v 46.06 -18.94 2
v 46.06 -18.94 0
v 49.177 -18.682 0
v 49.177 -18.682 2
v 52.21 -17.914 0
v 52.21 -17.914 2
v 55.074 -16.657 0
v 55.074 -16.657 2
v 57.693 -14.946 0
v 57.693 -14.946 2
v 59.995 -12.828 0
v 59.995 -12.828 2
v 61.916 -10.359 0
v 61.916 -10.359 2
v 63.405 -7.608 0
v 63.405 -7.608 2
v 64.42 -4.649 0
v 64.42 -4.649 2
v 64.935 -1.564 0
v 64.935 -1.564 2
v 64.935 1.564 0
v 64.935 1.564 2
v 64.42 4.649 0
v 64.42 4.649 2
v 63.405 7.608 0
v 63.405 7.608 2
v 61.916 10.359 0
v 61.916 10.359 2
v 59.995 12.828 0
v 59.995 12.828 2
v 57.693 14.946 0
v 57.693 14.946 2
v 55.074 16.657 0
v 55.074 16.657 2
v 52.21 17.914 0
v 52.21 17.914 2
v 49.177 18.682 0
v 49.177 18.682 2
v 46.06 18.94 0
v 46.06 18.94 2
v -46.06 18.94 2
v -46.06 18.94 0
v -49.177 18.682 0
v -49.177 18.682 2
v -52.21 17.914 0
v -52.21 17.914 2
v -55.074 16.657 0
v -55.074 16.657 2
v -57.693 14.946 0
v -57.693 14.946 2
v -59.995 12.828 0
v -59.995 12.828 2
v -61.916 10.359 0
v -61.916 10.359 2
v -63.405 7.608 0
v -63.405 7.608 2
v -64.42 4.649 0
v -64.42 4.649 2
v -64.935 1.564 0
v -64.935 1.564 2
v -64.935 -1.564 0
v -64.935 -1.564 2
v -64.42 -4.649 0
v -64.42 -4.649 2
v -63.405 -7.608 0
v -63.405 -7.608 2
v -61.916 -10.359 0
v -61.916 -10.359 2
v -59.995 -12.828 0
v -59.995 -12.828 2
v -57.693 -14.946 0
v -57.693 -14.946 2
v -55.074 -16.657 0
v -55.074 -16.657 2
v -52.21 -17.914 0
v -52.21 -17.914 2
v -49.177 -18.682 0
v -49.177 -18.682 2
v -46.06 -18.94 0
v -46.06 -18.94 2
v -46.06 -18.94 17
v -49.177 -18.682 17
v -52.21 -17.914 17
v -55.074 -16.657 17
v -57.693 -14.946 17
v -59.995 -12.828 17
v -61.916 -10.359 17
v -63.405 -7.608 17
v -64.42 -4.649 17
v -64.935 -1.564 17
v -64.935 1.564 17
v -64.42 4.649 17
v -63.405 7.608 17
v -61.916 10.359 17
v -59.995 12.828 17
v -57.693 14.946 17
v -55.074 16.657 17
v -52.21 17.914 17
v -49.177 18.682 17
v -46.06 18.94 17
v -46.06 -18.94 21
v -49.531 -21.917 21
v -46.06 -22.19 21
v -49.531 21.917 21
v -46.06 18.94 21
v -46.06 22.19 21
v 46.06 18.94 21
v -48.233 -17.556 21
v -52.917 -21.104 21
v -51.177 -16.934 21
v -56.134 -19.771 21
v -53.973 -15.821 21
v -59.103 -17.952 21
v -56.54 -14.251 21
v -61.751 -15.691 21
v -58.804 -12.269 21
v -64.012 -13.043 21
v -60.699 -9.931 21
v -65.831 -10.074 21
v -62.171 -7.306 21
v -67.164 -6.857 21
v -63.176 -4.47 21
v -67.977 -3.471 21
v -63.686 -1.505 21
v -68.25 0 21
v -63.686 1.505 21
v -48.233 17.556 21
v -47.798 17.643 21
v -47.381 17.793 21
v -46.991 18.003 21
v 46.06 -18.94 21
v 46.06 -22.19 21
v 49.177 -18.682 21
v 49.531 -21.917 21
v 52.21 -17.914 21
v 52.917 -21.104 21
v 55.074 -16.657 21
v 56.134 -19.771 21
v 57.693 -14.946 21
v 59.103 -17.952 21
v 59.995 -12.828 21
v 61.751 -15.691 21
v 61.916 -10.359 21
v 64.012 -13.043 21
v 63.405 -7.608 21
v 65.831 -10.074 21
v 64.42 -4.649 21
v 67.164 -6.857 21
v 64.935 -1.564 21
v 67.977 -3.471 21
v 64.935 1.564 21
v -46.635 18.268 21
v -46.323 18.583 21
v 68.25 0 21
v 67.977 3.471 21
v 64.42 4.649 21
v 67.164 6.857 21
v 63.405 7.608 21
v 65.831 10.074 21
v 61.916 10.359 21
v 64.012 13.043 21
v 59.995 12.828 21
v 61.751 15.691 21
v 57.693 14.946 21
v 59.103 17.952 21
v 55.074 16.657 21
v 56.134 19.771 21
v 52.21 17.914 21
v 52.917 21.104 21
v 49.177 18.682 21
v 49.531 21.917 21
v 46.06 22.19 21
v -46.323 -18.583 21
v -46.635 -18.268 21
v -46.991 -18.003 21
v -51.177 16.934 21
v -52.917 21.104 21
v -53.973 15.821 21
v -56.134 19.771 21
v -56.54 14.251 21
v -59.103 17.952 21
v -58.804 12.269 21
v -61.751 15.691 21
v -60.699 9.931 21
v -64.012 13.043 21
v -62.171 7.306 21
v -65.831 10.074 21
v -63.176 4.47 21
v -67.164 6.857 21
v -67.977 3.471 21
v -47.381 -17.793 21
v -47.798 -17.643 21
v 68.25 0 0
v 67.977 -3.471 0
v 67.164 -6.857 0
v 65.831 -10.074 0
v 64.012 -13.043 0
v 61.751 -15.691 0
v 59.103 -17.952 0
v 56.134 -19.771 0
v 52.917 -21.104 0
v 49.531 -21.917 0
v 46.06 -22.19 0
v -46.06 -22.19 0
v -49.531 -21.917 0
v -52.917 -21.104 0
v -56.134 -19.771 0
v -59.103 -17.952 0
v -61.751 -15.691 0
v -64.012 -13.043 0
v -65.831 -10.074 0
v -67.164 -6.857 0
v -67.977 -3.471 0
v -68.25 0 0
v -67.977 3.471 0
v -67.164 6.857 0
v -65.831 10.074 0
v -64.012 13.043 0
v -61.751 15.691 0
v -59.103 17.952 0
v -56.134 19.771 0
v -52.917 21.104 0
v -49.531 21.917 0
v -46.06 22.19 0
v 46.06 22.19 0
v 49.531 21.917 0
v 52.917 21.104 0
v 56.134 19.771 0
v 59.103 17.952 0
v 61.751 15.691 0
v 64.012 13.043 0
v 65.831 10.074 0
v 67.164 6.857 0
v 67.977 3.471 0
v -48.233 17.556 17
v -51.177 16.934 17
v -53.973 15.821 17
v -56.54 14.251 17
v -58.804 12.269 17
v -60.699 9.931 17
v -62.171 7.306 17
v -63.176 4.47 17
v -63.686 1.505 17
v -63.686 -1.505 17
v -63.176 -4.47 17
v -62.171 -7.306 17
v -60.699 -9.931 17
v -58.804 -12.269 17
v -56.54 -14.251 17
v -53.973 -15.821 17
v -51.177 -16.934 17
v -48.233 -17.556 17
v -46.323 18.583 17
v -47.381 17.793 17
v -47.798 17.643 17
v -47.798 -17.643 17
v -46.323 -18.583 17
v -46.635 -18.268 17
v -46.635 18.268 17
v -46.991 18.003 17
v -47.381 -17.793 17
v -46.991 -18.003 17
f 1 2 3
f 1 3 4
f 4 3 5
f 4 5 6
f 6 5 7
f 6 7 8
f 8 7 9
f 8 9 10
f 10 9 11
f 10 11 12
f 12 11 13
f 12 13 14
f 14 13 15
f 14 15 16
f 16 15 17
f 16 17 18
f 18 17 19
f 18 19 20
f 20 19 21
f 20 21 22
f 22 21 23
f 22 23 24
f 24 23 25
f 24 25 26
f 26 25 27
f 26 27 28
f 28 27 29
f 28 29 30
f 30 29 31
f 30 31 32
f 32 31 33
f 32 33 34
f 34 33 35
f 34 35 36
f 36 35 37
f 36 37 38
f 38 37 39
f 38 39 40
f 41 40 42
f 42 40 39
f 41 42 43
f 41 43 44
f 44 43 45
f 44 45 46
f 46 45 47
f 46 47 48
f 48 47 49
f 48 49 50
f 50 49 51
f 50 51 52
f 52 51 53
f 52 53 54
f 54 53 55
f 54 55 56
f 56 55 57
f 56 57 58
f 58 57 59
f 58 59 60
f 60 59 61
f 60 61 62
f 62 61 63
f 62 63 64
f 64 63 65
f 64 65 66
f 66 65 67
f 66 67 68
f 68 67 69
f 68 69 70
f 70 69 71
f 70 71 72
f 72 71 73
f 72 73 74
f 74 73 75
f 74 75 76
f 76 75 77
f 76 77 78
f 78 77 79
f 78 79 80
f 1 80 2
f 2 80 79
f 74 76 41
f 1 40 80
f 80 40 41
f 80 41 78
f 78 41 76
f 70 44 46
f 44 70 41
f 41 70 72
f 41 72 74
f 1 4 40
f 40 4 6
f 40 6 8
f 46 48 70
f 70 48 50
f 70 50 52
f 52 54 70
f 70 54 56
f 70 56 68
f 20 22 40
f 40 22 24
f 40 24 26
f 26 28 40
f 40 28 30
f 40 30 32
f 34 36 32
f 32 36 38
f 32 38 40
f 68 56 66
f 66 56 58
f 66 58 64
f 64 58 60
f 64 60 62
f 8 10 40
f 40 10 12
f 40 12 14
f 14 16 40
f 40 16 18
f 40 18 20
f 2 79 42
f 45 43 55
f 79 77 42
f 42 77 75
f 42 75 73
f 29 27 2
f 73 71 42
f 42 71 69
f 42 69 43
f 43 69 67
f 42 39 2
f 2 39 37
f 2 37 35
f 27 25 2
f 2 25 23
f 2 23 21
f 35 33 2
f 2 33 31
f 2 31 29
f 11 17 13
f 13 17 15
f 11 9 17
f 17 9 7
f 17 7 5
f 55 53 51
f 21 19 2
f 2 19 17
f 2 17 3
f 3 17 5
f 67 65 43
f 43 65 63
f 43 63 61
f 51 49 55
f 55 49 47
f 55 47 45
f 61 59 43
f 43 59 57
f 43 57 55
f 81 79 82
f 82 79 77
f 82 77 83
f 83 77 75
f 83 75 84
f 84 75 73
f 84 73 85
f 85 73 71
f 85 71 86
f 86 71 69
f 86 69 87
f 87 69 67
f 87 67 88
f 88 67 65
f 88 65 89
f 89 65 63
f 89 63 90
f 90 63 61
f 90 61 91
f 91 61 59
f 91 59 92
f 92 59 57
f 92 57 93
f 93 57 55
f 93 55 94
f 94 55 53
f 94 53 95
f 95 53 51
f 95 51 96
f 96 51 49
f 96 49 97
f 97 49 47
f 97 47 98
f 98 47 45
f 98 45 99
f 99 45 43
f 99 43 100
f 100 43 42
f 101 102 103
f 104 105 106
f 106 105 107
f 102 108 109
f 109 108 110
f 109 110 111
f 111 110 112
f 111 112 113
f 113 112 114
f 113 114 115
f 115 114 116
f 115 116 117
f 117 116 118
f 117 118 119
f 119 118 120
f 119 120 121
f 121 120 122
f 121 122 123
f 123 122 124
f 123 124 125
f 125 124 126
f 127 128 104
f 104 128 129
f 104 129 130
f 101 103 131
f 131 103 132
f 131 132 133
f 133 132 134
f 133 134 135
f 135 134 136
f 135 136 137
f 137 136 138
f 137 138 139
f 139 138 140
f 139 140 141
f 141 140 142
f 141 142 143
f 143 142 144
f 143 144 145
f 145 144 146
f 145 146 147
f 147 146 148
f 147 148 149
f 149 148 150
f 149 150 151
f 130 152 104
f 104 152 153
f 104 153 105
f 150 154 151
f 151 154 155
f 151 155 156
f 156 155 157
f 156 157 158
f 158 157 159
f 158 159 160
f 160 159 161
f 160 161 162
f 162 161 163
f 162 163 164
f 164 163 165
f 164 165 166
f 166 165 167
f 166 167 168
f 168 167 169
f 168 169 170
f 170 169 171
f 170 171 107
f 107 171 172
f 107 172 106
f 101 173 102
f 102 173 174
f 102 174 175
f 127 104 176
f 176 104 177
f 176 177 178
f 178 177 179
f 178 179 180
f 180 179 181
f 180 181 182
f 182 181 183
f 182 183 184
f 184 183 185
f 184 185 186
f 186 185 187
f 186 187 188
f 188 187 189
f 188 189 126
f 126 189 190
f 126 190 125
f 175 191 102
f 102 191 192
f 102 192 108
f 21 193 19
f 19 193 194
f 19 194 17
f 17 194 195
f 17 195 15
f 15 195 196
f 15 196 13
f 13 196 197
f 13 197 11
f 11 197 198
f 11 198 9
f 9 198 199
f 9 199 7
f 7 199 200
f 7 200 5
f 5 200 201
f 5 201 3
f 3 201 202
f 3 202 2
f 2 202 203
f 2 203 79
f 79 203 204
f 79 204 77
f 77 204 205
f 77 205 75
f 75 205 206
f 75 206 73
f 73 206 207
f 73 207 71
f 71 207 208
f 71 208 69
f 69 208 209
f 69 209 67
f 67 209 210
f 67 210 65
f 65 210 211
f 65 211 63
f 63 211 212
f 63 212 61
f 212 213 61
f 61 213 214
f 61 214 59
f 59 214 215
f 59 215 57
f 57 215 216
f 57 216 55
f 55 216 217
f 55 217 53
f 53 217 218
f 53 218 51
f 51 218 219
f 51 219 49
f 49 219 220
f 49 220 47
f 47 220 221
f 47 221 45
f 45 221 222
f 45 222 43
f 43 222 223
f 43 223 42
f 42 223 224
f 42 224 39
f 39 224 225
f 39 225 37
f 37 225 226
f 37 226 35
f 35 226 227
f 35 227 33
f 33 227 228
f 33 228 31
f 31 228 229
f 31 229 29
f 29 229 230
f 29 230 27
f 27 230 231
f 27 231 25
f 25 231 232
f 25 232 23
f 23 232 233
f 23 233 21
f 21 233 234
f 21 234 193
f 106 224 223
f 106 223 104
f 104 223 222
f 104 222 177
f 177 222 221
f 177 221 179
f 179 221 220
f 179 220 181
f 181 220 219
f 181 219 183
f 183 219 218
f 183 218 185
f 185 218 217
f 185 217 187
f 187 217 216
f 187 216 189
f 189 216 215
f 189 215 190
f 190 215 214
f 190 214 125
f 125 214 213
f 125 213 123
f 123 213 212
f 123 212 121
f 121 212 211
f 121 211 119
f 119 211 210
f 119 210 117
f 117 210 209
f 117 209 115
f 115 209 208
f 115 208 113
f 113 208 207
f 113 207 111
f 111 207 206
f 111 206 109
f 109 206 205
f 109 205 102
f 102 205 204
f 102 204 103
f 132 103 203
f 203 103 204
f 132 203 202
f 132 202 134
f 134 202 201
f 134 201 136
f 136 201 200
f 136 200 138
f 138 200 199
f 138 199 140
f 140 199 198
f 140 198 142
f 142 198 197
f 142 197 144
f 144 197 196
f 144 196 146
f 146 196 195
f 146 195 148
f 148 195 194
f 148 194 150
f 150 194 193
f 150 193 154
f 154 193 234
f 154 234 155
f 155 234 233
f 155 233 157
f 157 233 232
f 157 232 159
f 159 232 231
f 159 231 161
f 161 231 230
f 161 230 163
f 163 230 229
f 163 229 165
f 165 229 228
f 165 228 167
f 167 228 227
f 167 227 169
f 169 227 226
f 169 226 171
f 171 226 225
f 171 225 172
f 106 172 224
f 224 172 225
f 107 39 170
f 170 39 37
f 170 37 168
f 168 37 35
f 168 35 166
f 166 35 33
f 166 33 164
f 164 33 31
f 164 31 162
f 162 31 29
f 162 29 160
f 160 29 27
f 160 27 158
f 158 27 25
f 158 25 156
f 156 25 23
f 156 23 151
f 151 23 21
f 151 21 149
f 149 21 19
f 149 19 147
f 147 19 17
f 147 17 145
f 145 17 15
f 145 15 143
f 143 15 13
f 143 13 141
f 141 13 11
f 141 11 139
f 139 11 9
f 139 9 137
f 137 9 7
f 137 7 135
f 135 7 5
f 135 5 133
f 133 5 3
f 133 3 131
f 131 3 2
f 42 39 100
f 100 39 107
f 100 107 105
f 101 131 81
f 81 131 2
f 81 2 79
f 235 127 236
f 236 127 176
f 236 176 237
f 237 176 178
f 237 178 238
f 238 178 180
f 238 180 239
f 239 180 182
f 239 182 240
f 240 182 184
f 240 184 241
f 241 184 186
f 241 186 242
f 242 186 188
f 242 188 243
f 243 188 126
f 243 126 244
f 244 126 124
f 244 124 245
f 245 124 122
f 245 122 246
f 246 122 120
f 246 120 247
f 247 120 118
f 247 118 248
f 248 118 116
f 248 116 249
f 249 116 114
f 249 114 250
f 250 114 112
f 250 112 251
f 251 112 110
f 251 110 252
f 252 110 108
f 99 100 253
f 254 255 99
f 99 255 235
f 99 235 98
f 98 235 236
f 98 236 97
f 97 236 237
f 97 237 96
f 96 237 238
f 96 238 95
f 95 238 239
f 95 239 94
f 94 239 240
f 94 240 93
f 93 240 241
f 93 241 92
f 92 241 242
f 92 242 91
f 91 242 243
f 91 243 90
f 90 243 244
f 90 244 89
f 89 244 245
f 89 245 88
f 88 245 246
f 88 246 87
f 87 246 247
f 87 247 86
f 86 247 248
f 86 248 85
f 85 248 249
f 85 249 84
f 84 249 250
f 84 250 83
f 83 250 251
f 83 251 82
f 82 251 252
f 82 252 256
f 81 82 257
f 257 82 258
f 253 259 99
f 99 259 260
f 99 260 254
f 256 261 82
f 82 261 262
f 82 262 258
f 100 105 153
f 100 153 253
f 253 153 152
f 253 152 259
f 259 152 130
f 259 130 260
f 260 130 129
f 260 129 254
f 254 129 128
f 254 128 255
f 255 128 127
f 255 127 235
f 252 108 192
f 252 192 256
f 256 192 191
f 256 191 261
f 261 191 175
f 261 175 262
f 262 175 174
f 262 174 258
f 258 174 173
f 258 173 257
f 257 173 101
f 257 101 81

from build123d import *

# Parameters (mm, degrees)
BOSS_EXTRUDE3_DEPTH = 21
BOSS_EXTRUDE4_DEPTH = 2
BOSS_EXTRUDE7_START = -4
BOSS_EXTRUDE7_DEPTH = 4
FILLET3_R           = 3


with BuildPart() as part:
    # Sketch1 → Boss-Extrude3 (new body)
    with BuildSketch(Plane.XY):
        with BuildLine():
            Line((-46.06, 22.19), (46.06, 22.19))
            ThreePointArc((46.06, 22.19), (68.25, 0), (46.06, -22.19))
            Line((46.06, -22.19), (-46.06, -22.19))
            ThreePointArc((-46.06, -22.19), (-68.25, 0), (-46.06, 22.19))
        make_face()
        with BuildLine():
            Line((-46.06, 18.94), (46.06, 18.94))
            ThreePointArc((46.06, 18.94), (65, 0), (46.06, -18.94))
            Line((46.06, -18.94), (-46.06, -18.94))
            ThreePointArc((-46.06, -18.94), (-65, 0), (-46.06, 18.94))
        make_face(mode=Mode.SUBTRACT)
    extrude(amount=BOSS_EXTRUDE3_DEPTH)

    # Sketch5 → Boss-Extrude7 (add)
    with BuildSketch(Plane.XY.offset(21).offset(BOSS_EXTRUDE7_START)):
        with BuildLine():
            Line((-46.06, 17.69), (-46.06, 18.94))
            ThreePointArc((-46.06, 18.94), (-65, 0), (-46.06, -18.94))
            Line((-46.06, -18.94), (-46.06, -17.69))
            ThreePointArc((-46.06, -17.69), (-63.75, 0), (-46.06, 17.69))
        make_face()
    extrude(amount=BOSS_EXTRUDE7_DEPTH)

    # Fillet3
    # the kernel refuses this fillet: 3 mm, written as the material it takes off along each edge
    with BuildSketch(Plane(origin=(-46.06, 17.69, 11.556234358), x_dir=(-1.8644641386323197e-12, 1.0, 0), z_dir=(0, 0, 1))) as fillet3_piece_1:
        with BuildLine():
            CenterArc((2.843255016, 2.541955636), FILLET3_R, 187.057140648, 50.864065739)
            Line((-0.13401734, 2.173378212), (-0.193562787, 2.166006663))
            ThreePointArc((-0.193562787, 2.166006663), (-0.093422377, 1.085060353), (-0.06, 0))
            Line((-0.06, 0), (0, -0.06))
            ThreePointArc((0, -0.06), (0.625, -0.06), (1.2181349, -0.050839113))
            Line((1.2181349, -0.050839113), (1.25, 0))
        make_face()
    extrude(amount=14.887531284, mode=Mode.SUBTRACT)
    with BuildSketch(Plane(origin=(-46.06, -17.69, 11.556234358), x_dir=(-1.8474111129741445e-12, -1.0, 0), z_dir=(0, 0, 1))) as fillet3_piece_2:
        with BuildLine():
            CenterArc((2.843255016, -2.541955636), FILLET3_R, 122.078793613, 50.864065739)
            Line((-0.13401734, -2.173378212), (-0.193562787, -2.166006663))
            ThreePointArc((-0.193562787, -2.166006663), (-0.093422377, -1.085060353), (-0.06, 0))
            Line((-0.06, 0), (0, 0.06))
            ThreePointArc((0, 0.06), (0.625, 0.06), (1.2181349, 0.050839113))
            Line((1.2181349, 0.050839113), (1.25, 0))
        make_face()
    extrude(amount=14.887531284, mode=Mode.SUBTRACT)


with BuildPart() as body_2:
    # Sketch3 → Boss-Extrude4 (new body)
    with BuildSketch(Plane(origin=(0, 0, 0), x_dir=(-1, 0, 0), z_dir=(0, 0, -1))):
        with BuildLine():
            Line((-46.06, 18.94), (46.06, 18.94))
            ThreePointArc((46.06, 18.94), (65, 0), (46.06, -18.94))
            Line((46.06, -18.94), (-46.06, -18.94))
            ThreePointArc((-46.06, -18.94), (-65, 0), (-46.06, 18.94))
        make_face()
    extrude(amount=-BOSS_EXTRUDE4_DEPTH)


solid = Compound([part.part, body_2.part])
